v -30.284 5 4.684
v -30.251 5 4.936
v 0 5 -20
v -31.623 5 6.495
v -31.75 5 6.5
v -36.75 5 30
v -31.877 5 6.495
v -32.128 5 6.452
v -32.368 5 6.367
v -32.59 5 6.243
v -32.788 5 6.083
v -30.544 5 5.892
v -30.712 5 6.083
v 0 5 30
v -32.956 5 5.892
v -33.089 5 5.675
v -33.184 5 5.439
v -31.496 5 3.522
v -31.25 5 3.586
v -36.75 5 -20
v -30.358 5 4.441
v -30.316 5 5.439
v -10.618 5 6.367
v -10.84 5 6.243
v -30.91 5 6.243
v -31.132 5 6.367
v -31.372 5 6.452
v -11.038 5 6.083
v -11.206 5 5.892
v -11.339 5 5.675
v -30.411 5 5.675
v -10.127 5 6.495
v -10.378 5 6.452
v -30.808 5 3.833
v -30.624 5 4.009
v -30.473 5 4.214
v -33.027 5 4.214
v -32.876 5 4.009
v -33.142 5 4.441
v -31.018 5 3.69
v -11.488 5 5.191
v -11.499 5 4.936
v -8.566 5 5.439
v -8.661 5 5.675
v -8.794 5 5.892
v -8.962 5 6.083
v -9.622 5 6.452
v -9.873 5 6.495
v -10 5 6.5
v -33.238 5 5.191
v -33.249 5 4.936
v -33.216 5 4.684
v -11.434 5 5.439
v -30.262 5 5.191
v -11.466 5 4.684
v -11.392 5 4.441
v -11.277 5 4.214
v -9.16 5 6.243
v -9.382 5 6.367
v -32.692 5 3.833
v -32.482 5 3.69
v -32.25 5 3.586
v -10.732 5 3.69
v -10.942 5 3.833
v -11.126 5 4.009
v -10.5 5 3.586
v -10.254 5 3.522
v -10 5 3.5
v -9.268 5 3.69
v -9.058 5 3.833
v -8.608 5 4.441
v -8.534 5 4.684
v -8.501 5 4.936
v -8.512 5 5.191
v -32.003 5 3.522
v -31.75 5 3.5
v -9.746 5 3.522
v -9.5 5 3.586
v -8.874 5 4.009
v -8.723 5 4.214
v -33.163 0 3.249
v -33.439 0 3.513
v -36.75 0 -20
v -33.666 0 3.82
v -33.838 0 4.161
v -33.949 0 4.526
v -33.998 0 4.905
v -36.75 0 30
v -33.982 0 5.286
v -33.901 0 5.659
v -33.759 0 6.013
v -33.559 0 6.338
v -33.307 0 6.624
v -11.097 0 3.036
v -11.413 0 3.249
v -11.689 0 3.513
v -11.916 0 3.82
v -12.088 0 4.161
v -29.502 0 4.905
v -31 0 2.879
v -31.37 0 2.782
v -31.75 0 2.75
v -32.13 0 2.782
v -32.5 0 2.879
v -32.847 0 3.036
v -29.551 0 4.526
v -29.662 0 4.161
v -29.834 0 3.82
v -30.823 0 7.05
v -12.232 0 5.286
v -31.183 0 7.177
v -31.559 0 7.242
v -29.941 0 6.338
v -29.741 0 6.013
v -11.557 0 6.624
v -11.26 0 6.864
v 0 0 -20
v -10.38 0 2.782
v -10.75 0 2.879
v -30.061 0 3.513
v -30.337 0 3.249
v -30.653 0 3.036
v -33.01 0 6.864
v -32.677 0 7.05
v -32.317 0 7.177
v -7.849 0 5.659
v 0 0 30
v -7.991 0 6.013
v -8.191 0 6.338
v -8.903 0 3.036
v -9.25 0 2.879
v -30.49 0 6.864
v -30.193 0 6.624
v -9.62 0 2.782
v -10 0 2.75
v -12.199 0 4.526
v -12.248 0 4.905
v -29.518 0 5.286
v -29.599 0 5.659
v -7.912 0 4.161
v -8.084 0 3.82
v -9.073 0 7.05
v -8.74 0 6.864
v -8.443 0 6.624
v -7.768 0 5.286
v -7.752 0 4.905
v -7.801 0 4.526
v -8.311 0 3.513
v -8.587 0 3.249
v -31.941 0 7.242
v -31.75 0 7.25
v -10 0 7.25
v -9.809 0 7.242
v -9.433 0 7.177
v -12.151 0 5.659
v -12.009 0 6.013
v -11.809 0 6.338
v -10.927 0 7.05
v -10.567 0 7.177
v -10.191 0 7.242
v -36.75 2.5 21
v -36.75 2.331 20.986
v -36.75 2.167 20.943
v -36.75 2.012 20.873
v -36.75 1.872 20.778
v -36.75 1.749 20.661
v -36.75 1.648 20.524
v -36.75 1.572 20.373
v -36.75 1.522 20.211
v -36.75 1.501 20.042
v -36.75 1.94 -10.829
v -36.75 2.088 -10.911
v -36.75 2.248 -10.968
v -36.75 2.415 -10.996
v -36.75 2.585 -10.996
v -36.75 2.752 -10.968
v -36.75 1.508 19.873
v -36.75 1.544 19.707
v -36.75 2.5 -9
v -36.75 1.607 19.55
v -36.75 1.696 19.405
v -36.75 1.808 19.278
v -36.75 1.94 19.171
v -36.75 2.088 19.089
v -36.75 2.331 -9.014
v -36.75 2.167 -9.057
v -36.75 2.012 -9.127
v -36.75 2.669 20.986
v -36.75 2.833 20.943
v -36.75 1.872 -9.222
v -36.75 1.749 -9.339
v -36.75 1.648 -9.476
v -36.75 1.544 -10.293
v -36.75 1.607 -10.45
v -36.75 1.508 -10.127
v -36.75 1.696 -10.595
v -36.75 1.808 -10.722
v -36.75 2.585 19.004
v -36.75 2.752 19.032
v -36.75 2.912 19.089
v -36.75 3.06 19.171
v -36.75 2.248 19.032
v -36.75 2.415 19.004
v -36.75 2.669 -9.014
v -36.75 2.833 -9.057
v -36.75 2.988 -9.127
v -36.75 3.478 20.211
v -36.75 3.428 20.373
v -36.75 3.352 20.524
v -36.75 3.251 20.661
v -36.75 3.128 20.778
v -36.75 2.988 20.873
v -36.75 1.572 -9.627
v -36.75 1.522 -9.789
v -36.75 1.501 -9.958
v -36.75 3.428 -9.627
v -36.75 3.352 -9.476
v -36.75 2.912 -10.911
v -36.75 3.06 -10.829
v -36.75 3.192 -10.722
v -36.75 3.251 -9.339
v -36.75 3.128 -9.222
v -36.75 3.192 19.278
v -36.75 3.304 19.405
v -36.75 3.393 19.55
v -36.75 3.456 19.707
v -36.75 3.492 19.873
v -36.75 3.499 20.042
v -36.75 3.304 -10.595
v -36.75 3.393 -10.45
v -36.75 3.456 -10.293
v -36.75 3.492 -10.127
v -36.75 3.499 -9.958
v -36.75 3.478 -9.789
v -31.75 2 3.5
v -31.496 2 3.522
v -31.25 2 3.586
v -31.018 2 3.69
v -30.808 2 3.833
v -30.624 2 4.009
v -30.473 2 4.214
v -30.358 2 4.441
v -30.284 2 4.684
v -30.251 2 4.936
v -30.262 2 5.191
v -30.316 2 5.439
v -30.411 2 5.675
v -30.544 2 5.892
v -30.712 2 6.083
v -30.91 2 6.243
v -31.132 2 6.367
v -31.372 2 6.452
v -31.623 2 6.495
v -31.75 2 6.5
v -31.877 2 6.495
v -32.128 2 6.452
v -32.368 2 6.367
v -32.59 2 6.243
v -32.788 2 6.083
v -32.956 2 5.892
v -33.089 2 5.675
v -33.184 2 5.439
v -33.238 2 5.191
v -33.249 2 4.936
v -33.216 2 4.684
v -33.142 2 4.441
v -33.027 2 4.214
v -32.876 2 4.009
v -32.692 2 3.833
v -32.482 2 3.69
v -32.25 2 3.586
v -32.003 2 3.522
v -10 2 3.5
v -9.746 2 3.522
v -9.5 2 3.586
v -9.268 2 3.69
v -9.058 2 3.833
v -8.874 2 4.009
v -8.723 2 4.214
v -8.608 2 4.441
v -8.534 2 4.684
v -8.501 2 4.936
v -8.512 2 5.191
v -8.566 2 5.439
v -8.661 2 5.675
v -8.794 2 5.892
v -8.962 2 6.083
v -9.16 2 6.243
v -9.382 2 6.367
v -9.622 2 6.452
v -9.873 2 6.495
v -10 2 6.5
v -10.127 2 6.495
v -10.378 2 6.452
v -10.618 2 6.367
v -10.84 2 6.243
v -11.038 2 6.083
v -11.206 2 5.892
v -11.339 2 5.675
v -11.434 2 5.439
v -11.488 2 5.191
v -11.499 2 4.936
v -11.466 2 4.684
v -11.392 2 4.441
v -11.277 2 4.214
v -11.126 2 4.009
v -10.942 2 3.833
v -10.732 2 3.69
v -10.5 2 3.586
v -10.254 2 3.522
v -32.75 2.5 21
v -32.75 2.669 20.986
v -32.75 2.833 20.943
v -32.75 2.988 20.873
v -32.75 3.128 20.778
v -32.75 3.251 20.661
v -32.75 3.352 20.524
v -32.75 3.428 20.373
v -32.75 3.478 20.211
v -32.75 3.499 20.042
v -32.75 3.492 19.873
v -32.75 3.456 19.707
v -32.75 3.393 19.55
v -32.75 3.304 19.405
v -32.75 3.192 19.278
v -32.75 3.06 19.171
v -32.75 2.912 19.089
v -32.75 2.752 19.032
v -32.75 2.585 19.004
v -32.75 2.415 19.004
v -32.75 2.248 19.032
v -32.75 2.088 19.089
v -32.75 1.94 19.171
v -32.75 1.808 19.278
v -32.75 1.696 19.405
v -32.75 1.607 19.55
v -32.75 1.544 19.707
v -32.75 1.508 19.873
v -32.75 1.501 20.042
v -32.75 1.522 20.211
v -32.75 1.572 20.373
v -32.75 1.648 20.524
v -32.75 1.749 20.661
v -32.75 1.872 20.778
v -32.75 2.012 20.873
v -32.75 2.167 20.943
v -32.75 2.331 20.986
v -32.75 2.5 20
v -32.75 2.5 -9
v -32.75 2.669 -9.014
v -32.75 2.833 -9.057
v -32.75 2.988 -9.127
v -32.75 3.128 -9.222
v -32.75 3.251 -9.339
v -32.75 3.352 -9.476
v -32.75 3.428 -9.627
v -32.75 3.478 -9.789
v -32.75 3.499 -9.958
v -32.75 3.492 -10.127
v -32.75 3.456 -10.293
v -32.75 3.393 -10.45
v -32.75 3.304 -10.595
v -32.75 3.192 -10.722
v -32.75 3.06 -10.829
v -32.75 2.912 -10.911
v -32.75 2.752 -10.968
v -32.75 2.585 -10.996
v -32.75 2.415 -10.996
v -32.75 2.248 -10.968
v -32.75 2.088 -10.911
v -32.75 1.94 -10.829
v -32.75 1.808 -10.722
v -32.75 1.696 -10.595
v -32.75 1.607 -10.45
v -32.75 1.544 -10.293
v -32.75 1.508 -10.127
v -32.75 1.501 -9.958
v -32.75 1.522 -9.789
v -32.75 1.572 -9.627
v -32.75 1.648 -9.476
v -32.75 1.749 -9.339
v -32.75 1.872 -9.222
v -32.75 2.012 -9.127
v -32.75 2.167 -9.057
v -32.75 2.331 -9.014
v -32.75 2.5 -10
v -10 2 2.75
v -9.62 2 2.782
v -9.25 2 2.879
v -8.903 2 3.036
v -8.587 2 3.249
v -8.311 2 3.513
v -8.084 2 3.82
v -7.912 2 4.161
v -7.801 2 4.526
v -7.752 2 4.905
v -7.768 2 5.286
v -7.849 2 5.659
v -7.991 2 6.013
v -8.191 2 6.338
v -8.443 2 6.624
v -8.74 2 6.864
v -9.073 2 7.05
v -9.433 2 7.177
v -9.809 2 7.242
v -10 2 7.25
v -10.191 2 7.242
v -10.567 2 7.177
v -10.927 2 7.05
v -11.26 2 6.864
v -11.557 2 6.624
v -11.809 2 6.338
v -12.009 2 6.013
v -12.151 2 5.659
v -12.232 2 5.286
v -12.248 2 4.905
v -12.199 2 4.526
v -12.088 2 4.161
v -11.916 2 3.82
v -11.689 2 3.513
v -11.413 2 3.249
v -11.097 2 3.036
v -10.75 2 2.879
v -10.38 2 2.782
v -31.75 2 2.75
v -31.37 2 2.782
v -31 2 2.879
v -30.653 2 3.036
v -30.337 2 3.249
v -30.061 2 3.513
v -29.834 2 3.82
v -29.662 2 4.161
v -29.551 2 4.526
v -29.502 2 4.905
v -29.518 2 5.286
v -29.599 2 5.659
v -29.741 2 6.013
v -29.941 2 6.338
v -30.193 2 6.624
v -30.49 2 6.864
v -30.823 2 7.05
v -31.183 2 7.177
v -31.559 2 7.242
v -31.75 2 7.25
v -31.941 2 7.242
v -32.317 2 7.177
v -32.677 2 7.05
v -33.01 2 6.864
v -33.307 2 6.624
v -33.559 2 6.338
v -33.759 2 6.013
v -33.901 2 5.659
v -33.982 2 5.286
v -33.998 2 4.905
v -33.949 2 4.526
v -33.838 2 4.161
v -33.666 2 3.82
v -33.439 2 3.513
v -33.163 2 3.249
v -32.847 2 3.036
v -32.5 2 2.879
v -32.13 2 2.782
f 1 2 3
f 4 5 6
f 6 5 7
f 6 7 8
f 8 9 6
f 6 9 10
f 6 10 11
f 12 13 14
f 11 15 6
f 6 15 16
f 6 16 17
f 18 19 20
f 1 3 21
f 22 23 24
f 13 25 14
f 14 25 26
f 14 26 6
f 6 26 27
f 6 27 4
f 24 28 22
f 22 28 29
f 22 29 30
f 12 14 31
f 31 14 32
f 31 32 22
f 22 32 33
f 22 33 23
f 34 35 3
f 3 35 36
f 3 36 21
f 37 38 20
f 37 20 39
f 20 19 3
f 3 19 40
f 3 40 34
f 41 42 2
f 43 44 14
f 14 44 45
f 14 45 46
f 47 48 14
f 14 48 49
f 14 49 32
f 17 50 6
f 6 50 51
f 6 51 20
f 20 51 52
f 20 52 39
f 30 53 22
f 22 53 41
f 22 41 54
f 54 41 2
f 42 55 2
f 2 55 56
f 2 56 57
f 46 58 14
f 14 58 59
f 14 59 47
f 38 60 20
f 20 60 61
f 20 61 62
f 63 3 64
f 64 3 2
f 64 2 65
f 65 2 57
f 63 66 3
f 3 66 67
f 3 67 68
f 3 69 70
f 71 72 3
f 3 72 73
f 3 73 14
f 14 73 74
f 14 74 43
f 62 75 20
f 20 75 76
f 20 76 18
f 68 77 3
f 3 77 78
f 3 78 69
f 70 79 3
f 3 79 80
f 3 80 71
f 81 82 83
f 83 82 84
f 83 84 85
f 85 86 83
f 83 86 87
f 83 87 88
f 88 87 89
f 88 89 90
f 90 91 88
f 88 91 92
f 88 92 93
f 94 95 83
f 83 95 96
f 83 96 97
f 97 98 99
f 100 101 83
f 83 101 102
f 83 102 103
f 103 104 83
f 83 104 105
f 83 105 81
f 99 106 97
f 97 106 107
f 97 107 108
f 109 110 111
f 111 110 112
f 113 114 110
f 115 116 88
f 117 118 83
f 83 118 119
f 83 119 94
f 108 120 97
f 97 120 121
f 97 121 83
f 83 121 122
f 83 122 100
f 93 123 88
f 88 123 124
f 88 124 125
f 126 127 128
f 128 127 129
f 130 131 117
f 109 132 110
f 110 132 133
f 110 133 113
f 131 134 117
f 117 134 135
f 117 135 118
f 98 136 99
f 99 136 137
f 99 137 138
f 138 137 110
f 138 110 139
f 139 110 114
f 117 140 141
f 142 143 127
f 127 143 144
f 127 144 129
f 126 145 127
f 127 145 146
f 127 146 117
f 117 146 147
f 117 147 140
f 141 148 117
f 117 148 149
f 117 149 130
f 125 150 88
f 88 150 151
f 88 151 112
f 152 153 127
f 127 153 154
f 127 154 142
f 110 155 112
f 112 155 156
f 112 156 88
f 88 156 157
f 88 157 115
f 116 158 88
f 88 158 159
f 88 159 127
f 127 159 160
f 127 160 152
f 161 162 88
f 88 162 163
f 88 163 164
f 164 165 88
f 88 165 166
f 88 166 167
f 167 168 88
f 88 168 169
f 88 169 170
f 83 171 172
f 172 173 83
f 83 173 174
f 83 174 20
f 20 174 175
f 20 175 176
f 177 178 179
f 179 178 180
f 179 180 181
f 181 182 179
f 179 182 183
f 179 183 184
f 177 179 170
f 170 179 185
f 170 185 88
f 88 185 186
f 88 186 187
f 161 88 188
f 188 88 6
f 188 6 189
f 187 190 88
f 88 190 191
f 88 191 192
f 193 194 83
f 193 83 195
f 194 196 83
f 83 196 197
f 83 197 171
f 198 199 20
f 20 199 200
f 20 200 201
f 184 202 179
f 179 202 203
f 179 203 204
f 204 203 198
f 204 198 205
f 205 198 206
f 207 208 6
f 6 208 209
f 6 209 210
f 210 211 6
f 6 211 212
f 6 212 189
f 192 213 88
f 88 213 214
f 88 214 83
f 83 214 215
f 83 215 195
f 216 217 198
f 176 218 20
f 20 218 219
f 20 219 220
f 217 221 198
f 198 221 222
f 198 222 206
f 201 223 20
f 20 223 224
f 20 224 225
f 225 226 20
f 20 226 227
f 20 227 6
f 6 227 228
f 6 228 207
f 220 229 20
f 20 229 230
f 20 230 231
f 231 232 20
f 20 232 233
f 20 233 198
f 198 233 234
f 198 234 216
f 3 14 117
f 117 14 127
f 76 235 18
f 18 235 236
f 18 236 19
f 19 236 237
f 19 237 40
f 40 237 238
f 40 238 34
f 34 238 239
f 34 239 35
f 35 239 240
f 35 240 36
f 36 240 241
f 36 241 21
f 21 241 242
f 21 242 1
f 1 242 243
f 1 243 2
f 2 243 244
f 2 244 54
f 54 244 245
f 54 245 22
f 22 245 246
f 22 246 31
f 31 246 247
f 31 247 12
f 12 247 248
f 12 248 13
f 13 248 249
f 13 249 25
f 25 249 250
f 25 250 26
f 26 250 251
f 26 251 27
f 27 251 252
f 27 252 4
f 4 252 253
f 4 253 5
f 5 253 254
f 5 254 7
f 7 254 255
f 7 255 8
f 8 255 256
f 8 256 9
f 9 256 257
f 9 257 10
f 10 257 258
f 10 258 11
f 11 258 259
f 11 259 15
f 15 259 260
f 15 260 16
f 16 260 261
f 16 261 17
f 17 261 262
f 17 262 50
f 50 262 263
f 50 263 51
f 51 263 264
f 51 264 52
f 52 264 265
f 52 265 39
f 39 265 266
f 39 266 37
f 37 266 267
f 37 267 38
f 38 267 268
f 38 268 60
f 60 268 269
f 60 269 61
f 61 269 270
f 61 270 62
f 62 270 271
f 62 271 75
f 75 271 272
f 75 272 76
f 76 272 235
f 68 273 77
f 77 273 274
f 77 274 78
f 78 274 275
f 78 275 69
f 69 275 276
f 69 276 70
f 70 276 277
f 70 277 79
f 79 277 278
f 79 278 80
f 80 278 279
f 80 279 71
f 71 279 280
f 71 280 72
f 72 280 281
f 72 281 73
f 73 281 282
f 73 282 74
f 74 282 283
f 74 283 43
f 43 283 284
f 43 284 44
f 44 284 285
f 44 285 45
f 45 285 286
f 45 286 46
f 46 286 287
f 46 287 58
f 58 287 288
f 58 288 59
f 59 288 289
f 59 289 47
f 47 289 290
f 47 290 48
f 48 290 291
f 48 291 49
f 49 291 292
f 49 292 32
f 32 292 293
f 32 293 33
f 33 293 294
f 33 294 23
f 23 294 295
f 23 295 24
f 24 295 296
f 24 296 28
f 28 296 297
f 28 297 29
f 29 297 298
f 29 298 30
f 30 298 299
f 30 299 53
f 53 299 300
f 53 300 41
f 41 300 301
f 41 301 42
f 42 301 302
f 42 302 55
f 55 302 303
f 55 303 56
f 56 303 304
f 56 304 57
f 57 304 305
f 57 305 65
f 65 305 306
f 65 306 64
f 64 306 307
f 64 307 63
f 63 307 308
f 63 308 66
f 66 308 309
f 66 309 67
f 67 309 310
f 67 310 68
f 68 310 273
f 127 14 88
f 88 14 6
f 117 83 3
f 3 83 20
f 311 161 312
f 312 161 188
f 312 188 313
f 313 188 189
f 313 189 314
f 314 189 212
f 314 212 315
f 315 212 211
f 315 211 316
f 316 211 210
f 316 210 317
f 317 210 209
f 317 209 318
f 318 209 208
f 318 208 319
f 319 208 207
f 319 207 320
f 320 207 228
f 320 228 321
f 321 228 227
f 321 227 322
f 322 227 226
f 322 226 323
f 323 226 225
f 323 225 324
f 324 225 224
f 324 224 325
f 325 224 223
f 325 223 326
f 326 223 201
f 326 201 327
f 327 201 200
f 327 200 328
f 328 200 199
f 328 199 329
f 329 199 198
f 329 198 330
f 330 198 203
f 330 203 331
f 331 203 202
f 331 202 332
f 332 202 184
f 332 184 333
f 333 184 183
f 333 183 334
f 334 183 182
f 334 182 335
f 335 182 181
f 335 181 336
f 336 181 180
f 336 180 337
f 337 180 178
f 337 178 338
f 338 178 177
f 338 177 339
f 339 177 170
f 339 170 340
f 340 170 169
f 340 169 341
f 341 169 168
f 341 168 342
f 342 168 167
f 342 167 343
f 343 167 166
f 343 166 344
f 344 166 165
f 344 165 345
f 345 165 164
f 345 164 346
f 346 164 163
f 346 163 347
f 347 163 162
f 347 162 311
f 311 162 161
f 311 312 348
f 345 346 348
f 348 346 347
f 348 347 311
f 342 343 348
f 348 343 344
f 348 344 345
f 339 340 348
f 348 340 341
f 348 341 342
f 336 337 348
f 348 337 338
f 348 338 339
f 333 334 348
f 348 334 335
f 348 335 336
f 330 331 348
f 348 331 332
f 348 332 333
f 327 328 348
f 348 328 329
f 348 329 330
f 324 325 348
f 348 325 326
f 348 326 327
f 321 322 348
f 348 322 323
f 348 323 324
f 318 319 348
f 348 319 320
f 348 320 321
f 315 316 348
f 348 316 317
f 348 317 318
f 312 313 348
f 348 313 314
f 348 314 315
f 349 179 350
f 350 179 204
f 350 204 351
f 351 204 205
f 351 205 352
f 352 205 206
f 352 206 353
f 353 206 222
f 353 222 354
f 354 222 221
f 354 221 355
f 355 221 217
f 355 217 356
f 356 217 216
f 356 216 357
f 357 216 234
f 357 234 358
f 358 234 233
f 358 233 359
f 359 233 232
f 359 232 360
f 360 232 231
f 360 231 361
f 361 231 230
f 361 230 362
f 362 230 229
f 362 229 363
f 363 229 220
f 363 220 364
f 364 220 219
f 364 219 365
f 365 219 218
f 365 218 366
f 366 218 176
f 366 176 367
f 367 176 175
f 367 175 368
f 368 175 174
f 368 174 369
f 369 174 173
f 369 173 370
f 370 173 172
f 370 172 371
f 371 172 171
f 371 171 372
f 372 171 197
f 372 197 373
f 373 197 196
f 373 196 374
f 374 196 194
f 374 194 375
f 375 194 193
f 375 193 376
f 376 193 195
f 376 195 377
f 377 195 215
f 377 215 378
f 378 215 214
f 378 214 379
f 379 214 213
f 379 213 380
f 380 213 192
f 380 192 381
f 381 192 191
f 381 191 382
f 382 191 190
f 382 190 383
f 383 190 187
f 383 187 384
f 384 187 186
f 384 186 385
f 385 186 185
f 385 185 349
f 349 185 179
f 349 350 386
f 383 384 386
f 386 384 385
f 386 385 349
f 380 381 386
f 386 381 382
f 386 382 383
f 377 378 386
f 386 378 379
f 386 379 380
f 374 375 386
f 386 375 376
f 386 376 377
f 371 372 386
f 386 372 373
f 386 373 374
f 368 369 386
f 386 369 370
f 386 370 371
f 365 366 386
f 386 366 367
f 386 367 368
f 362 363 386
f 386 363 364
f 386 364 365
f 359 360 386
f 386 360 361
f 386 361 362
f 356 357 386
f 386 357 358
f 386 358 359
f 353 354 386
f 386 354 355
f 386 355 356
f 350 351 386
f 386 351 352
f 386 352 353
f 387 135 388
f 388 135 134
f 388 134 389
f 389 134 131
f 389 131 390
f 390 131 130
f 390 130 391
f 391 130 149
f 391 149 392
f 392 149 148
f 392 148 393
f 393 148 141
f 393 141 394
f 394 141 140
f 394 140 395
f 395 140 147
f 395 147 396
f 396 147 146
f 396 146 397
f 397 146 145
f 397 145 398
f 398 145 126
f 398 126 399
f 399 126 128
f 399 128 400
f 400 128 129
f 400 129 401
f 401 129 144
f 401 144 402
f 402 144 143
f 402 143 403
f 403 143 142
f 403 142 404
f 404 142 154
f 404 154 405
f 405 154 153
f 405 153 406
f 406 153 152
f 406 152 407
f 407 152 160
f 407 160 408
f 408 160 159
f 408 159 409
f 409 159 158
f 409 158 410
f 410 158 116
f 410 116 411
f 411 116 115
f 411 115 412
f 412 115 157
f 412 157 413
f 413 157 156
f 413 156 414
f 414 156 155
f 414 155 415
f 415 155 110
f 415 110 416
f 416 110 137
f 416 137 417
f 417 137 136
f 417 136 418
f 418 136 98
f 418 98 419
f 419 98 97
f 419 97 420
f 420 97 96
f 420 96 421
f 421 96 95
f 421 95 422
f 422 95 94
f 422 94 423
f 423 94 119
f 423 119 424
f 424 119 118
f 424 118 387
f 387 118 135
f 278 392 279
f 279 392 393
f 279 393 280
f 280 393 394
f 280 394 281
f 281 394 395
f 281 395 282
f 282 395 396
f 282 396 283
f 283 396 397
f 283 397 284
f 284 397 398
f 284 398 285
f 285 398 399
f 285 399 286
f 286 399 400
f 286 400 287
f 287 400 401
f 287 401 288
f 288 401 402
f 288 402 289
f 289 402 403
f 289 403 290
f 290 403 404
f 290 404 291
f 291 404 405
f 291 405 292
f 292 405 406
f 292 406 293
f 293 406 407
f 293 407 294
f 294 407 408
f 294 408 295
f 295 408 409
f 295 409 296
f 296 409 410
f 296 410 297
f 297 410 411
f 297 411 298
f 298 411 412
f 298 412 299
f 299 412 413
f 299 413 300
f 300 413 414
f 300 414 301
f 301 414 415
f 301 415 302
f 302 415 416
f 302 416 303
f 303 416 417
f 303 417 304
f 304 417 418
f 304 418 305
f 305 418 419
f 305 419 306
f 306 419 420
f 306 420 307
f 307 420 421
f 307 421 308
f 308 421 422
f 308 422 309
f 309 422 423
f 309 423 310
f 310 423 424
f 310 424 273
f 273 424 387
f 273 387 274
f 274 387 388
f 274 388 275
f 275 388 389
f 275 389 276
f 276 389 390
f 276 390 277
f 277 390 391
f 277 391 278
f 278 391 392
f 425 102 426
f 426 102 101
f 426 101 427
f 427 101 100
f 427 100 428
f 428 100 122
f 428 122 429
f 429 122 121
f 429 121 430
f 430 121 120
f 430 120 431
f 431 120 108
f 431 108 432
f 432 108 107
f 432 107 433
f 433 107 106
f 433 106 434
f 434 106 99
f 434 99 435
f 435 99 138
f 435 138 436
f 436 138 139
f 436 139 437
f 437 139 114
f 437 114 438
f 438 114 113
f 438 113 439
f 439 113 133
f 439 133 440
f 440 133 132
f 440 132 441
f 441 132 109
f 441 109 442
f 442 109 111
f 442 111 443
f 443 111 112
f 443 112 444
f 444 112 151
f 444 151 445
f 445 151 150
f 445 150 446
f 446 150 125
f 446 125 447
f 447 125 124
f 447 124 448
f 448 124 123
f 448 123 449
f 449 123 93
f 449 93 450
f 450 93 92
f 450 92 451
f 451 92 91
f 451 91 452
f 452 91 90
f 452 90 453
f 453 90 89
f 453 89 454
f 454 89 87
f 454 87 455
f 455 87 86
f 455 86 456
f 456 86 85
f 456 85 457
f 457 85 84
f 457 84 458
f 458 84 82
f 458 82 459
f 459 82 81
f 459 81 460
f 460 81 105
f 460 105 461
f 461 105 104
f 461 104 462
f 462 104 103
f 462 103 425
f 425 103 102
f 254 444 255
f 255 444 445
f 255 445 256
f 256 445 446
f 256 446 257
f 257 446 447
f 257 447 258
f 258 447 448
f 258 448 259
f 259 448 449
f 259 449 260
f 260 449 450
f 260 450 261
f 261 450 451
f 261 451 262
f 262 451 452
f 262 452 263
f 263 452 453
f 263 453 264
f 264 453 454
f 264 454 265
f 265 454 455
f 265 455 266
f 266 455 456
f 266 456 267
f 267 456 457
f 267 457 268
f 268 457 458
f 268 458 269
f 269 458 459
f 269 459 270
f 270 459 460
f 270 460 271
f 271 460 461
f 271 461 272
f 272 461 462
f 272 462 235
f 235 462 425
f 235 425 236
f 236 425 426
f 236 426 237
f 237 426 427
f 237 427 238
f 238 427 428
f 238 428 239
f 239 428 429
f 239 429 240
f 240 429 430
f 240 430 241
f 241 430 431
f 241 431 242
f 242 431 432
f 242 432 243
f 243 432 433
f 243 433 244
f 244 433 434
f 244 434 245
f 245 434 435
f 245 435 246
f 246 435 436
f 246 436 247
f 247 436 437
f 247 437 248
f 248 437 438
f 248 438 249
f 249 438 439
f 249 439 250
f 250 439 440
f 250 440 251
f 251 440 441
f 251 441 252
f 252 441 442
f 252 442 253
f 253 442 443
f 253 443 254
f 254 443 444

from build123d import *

# Parameters (mm, degrees)
SKETCH_4_W          = 36.75
SKETCH_4_H          = 10
SKETCH_4_R          = 1.5
EXTRUDE_1_DEPTH     = 5
SKETCH_5_W          = 36.75
SKETCH_5_H          = 5
EXTRUDE_2_DEPTH     = 20
EXTRUDE_START       = -10
SKETCH_5_2_W        = 36.75
SKETCH_5_2_H        = 5
EXTRUDE_3_DEPTH     = 20
SKETCH_6_R          = 1
CUT_EXTRUDE_1_DEPTH = 4
SKETCH_4_5_R        = 2.25
CUT_EXTRUDE_2_DEPTH = 2


with BuildPart() as part:
    # 草图4 → 凸台-拉伸1 (new body)
    with BuildSketch(Plane(origin=(0, 0, 0), x_dir=(1, 0, 0), z_dir=(0, 1, 0))):
        with Locations((-18.375, -5)):
            Rectangle(SKETCH_4_W, SKETCH_4_H)
        with Locations(Location((-31.75, -5, 0), (0, 0, 270))):
            Circle(SKETCH_4_R, mode=Mode.SUBTRACT)
        with Locations(Location((-10, -5, 0), (0, 0, 270))):
            Circle(SKETCH_4_R, mode=Mode.SUBTRACT)
    extrude(amount=EXTRUDE_1_DEPTH)

    # 草图5 → 凸台-拉伸2 (add)
    with BuildSketch(Plane.XY.offset(10)):
        with Locations((-18.375, 2.5)):
            Rectangle(SKETCH_5_W, SKETCH_5_H)
    extrude(amount=EXTRUDE_2_DEPTH)

    # 草图5<2> → 凸台-拉伸3 (add)
    with BuildSketch(Plane.XY.offset(10).offset(EXTRUDE_START)):
        with Locations((-18.375, 2.5)):
            Rectangle(SKETCH_5_2_W, SKETCH_5_2_H)
    extrude(amount=-EXTRUDE_3_DEPTH)

    # 草图6 → 切除-拉伸1 (cut)
    with BuildSketch(Plane.ZY.offset(36.75)):
        with Locations((-10, 2.5)):
            Circle(SKETCH_6_R)
        with Locations((20, 2.5)):
            Circle(SKETCH_6_R)
    extrude(amount=-CUT_EXTRUDE_1_DEPTH, mode=Mode.SUBTRACT)

    # 草图4<5> → 切除-拉伸2 (cut)
    with BuildSketch(Plane(origin=(0, 0, 0), x_dir=(1, 0, 0), z_dir=(0, 1, 0))):
        with Locations(Location((-31.75, -5, 0), (0, 0, 270))):
            Circle(SKETCH_4_5_R)
        with Locations(Location((-10, -5, 0), (0, 0, 270))):
            Circle(SKETCH_4_5_R)
    extrude(amount=CUT_EXTRUDE_2_DEPTH, mode=Mode.SUBTRACT)


solid = part.part
